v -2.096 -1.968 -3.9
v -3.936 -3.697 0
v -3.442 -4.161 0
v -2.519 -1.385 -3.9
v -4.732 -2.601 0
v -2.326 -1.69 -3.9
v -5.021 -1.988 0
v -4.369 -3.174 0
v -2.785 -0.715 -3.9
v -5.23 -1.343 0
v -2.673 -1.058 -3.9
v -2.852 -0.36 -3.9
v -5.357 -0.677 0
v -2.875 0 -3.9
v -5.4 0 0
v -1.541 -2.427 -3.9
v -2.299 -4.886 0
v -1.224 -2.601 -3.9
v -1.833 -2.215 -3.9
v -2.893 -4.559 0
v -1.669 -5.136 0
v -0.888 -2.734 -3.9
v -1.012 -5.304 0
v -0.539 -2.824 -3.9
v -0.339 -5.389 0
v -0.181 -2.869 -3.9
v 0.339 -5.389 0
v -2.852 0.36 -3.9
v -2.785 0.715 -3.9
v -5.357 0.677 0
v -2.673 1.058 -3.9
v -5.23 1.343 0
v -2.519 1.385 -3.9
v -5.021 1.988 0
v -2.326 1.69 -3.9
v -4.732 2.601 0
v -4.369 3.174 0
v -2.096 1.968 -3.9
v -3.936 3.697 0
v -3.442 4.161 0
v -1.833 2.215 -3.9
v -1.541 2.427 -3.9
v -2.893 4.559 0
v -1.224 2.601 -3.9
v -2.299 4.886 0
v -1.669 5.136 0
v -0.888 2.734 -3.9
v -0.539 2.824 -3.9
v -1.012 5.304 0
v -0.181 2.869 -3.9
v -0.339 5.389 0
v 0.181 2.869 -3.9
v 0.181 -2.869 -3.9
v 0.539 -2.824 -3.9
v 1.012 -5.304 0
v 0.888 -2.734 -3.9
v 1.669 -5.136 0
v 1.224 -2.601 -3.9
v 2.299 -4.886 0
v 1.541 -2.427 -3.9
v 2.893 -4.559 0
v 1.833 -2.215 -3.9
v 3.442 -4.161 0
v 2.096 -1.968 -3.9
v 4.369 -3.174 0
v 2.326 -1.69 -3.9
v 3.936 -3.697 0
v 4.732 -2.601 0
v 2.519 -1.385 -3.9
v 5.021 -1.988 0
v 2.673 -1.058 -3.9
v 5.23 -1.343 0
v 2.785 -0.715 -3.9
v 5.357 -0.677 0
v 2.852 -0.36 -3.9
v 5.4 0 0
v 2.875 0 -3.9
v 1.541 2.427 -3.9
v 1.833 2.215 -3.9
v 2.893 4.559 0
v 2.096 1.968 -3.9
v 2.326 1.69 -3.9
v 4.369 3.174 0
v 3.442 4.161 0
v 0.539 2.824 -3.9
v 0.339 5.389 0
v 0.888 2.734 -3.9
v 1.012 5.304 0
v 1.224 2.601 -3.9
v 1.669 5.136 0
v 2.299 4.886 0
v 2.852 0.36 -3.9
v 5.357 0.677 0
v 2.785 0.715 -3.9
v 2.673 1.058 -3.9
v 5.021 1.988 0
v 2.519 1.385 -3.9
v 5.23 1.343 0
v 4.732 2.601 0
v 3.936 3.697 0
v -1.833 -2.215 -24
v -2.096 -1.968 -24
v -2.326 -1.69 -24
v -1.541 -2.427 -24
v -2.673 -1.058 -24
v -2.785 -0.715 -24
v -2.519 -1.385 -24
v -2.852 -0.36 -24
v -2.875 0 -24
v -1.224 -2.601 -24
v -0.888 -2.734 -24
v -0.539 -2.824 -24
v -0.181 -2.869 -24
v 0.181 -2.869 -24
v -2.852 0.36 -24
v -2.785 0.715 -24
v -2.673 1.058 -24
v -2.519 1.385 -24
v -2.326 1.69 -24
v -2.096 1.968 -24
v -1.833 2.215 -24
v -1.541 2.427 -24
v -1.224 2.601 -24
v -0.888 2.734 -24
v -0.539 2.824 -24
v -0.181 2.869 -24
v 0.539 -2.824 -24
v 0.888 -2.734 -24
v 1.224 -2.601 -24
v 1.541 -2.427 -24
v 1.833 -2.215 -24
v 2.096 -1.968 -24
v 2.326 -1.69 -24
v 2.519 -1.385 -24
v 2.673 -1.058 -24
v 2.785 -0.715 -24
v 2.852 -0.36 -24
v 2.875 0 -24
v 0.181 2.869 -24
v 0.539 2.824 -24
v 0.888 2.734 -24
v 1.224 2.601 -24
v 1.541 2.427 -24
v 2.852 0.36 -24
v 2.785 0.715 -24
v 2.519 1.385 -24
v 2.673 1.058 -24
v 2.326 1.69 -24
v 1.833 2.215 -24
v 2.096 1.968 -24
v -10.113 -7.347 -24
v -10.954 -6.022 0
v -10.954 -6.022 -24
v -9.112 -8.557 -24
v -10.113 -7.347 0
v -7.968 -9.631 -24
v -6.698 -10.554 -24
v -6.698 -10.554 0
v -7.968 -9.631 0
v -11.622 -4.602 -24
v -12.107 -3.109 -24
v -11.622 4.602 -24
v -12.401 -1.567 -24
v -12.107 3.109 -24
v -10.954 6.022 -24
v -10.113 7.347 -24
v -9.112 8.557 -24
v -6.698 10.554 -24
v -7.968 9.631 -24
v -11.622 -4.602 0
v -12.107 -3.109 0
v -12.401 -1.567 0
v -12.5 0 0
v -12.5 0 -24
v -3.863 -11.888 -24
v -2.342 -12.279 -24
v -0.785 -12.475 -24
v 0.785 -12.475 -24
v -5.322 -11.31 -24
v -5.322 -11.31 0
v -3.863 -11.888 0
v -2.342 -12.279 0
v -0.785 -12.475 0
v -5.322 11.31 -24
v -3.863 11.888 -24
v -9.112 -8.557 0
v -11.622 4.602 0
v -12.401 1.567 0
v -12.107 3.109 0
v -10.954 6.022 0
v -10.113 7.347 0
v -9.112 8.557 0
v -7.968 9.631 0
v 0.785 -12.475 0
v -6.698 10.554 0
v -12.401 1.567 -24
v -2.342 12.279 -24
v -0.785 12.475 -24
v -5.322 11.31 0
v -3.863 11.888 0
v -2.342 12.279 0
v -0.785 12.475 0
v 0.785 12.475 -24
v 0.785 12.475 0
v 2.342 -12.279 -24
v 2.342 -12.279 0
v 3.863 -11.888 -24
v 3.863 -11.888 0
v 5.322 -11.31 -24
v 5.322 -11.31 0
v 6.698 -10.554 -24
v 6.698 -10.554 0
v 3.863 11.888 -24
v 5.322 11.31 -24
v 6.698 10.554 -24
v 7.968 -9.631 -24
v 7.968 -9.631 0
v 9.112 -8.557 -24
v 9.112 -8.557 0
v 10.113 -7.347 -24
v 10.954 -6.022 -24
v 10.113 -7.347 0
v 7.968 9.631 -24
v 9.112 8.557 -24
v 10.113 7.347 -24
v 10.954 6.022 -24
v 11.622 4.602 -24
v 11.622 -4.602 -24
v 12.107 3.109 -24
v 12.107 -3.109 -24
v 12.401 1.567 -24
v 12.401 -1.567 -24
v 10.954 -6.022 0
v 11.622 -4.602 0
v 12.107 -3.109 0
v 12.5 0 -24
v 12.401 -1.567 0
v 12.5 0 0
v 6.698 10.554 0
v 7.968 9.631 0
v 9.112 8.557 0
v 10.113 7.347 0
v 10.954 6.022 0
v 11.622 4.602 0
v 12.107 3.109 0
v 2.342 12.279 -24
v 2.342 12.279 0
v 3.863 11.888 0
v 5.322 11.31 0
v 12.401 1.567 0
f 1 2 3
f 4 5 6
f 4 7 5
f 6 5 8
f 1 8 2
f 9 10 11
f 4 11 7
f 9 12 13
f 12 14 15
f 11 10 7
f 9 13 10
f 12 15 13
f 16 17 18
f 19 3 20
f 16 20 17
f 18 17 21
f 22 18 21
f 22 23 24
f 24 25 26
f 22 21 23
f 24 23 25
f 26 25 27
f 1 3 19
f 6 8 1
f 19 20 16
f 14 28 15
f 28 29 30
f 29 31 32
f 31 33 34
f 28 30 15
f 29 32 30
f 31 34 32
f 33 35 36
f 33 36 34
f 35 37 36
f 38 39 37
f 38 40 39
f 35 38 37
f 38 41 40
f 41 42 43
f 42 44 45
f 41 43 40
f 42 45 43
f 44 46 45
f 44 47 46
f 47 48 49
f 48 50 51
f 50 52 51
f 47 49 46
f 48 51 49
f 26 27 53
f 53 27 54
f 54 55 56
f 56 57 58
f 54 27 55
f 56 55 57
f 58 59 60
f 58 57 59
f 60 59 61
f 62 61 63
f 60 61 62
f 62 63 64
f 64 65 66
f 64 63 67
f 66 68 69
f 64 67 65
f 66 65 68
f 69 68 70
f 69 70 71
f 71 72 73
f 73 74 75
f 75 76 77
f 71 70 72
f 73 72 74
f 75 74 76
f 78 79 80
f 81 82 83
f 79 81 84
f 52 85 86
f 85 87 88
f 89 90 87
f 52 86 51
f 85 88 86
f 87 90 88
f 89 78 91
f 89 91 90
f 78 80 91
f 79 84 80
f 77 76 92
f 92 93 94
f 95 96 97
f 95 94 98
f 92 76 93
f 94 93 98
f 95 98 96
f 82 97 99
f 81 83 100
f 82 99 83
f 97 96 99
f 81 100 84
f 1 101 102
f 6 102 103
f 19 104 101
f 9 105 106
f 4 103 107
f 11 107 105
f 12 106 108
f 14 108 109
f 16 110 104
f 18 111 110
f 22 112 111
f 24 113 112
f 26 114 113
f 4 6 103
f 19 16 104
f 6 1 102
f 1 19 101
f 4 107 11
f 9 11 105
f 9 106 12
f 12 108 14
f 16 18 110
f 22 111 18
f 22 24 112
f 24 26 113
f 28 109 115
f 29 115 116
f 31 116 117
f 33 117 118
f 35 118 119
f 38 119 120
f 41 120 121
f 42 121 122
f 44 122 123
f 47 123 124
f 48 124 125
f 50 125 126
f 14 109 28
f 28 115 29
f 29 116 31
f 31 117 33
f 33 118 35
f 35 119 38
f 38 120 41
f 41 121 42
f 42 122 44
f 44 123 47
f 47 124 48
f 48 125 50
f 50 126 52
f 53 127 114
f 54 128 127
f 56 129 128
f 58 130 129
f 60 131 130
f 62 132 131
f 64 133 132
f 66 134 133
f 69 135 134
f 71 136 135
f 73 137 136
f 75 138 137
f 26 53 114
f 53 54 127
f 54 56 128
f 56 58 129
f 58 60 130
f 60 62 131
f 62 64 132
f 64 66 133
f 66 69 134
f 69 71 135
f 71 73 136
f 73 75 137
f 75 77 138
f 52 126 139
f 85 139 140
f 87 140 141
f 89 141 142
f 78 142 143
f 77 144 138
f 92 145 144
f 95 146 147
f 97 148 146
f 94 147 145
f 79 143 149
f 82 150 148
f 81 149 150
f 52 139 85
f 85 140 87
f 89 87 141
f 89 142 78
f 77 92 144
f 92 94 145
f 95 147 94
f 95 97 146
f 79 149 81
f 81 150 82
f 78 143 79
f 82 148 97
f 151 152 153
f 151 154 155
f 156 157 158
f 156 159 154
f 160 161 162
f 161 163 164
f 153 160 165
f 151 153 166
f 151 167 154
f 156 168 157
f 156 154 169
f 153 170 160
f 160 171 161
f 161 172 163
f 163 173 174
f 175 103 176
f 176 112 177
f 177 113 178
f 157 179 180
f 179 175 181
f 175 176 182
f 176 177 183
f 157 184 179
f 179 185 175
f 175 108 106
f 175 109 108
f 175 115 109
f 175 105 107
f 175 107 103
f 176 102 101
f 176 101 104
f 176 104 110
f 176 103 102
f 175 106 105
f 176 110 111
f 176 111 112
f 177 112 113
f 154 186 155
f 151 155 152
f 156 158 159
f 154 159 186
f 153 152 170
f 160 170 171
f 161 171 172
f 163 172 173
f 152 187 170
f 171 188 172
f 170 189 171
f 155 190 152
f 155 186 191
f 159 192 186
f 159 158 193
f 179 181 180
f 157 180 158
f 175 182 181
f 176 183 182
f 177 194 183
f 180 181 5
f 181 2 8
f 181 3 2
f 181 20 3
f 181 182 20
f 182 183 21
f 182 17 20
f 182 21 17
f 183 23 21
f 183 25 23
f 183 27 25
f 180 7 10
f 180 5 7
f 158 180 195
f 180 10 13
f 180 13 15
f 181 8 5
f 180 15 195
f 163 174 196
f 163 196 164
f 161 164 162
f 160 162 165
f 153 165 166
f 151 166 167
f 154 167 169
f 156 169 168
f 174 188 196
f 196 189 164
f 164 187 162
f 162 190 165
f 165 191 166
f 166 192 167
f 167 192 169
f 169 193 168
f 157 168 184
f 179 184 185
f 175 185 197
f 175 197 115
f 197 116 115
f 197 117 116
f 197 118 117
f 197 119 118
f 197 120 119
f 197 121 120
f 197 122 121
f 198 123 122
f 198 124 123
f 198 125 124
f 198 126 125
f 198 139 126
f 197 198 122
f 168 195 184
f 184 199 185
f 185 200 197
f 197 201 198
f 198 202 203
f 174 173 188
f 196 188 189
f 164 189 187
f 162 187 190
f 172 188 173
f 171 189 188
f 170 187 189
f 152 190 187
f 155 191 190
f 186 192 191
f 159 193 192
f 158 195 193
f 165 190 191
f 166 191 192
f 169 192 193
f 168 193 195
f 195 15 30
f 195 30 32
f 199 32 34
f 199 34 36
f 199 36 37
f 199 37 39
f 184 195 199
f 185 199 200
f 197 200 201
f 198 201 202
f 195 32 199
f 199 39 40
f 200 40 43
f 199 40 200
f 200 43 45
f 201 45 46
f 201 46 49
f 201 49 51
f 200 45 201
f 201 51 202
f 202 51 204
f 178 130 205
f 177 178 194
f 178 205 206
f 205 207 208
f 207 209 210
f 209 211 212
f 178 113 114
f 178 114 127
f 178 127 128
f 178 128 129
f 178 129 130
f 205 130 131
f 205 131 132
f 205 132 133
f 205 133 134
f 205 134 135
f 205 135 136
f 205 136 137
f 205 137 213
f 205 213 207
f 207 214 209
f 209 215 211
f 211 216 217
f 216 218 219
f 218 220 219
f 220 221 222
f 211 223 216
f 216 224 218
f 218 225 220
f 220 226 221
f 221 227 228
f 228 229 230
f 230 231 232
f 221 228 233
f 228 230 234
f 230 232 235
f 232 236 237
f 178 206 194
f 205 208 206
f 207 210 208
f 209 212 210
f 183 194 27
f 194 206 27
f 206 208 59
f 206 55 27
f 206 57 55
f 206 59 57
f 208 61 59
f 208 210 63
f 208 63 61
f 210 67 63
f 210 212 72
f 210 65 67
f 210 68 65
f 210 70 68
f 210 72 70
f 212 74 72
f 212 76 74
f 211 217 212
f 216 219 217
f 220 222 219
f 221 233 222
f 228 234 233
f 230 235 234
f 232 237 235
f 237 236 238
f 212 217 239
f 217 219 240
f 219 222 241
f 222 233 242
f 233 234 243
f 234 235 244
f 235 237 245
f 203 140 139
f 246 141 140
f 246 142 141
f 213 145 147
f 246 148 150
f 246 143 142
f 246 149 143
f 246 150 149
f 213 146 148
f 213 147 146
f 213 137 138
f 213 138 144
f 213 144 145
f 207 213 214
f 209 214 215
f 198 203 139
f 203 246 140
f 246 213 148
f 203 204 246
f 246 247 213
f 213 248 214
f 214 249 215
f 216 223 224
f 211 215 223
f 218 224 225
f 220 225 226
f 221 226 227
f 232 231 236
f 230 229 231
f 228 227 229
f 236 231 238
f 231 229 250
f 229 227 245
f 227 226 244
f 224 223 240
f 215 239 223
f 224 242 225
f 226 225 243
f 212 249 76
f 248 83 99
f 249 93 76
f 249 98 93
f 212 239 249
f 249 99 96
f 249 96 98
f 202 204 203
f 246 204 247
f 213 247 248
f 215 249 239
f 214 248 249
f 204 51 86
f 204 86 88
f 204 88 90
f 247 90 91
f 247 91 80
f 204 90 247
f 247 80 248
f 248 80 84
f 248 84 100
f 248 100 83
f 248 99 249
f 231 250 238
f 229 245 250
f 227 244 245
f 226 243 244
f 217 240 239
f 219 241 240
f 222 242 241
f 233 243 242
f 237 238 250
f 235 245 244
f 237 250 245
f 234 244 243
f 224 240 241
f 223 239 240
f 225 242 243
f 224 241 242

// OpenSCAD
$fn = 50;


difference() {
	union() {
		translate(v = [0, 0, -24.0000000000]) {
			cylinder(h = 24, r = 12.5000000000);
		}
	}
	union() {
		translate(v = [0, 0, 0]) {
			rotate(a = [0, 0, 0]) {
				difference() {
					union() {
						translate(v = [0, 0, -27.0000000000]) {
							cylinder(h = 27, r = 2.6000000000);
						}
						translate(v = [0, 0, -3.9000000000]) {
							cylinder(h = 3.9000000000, r1 = 2.8750000000, r2 = 5.4000000000);
						}
						translate(v = [0, 0, -27.0000000000]) {
							cylinder(h = 27, r = 2.8750000000);
						}
						translate(v = [0, 0, -27.0000000000]) {
							cylinder(h = 27, r = 2.6000000000);
						}
					}
					union();
				}
			}
		}
	}
}
